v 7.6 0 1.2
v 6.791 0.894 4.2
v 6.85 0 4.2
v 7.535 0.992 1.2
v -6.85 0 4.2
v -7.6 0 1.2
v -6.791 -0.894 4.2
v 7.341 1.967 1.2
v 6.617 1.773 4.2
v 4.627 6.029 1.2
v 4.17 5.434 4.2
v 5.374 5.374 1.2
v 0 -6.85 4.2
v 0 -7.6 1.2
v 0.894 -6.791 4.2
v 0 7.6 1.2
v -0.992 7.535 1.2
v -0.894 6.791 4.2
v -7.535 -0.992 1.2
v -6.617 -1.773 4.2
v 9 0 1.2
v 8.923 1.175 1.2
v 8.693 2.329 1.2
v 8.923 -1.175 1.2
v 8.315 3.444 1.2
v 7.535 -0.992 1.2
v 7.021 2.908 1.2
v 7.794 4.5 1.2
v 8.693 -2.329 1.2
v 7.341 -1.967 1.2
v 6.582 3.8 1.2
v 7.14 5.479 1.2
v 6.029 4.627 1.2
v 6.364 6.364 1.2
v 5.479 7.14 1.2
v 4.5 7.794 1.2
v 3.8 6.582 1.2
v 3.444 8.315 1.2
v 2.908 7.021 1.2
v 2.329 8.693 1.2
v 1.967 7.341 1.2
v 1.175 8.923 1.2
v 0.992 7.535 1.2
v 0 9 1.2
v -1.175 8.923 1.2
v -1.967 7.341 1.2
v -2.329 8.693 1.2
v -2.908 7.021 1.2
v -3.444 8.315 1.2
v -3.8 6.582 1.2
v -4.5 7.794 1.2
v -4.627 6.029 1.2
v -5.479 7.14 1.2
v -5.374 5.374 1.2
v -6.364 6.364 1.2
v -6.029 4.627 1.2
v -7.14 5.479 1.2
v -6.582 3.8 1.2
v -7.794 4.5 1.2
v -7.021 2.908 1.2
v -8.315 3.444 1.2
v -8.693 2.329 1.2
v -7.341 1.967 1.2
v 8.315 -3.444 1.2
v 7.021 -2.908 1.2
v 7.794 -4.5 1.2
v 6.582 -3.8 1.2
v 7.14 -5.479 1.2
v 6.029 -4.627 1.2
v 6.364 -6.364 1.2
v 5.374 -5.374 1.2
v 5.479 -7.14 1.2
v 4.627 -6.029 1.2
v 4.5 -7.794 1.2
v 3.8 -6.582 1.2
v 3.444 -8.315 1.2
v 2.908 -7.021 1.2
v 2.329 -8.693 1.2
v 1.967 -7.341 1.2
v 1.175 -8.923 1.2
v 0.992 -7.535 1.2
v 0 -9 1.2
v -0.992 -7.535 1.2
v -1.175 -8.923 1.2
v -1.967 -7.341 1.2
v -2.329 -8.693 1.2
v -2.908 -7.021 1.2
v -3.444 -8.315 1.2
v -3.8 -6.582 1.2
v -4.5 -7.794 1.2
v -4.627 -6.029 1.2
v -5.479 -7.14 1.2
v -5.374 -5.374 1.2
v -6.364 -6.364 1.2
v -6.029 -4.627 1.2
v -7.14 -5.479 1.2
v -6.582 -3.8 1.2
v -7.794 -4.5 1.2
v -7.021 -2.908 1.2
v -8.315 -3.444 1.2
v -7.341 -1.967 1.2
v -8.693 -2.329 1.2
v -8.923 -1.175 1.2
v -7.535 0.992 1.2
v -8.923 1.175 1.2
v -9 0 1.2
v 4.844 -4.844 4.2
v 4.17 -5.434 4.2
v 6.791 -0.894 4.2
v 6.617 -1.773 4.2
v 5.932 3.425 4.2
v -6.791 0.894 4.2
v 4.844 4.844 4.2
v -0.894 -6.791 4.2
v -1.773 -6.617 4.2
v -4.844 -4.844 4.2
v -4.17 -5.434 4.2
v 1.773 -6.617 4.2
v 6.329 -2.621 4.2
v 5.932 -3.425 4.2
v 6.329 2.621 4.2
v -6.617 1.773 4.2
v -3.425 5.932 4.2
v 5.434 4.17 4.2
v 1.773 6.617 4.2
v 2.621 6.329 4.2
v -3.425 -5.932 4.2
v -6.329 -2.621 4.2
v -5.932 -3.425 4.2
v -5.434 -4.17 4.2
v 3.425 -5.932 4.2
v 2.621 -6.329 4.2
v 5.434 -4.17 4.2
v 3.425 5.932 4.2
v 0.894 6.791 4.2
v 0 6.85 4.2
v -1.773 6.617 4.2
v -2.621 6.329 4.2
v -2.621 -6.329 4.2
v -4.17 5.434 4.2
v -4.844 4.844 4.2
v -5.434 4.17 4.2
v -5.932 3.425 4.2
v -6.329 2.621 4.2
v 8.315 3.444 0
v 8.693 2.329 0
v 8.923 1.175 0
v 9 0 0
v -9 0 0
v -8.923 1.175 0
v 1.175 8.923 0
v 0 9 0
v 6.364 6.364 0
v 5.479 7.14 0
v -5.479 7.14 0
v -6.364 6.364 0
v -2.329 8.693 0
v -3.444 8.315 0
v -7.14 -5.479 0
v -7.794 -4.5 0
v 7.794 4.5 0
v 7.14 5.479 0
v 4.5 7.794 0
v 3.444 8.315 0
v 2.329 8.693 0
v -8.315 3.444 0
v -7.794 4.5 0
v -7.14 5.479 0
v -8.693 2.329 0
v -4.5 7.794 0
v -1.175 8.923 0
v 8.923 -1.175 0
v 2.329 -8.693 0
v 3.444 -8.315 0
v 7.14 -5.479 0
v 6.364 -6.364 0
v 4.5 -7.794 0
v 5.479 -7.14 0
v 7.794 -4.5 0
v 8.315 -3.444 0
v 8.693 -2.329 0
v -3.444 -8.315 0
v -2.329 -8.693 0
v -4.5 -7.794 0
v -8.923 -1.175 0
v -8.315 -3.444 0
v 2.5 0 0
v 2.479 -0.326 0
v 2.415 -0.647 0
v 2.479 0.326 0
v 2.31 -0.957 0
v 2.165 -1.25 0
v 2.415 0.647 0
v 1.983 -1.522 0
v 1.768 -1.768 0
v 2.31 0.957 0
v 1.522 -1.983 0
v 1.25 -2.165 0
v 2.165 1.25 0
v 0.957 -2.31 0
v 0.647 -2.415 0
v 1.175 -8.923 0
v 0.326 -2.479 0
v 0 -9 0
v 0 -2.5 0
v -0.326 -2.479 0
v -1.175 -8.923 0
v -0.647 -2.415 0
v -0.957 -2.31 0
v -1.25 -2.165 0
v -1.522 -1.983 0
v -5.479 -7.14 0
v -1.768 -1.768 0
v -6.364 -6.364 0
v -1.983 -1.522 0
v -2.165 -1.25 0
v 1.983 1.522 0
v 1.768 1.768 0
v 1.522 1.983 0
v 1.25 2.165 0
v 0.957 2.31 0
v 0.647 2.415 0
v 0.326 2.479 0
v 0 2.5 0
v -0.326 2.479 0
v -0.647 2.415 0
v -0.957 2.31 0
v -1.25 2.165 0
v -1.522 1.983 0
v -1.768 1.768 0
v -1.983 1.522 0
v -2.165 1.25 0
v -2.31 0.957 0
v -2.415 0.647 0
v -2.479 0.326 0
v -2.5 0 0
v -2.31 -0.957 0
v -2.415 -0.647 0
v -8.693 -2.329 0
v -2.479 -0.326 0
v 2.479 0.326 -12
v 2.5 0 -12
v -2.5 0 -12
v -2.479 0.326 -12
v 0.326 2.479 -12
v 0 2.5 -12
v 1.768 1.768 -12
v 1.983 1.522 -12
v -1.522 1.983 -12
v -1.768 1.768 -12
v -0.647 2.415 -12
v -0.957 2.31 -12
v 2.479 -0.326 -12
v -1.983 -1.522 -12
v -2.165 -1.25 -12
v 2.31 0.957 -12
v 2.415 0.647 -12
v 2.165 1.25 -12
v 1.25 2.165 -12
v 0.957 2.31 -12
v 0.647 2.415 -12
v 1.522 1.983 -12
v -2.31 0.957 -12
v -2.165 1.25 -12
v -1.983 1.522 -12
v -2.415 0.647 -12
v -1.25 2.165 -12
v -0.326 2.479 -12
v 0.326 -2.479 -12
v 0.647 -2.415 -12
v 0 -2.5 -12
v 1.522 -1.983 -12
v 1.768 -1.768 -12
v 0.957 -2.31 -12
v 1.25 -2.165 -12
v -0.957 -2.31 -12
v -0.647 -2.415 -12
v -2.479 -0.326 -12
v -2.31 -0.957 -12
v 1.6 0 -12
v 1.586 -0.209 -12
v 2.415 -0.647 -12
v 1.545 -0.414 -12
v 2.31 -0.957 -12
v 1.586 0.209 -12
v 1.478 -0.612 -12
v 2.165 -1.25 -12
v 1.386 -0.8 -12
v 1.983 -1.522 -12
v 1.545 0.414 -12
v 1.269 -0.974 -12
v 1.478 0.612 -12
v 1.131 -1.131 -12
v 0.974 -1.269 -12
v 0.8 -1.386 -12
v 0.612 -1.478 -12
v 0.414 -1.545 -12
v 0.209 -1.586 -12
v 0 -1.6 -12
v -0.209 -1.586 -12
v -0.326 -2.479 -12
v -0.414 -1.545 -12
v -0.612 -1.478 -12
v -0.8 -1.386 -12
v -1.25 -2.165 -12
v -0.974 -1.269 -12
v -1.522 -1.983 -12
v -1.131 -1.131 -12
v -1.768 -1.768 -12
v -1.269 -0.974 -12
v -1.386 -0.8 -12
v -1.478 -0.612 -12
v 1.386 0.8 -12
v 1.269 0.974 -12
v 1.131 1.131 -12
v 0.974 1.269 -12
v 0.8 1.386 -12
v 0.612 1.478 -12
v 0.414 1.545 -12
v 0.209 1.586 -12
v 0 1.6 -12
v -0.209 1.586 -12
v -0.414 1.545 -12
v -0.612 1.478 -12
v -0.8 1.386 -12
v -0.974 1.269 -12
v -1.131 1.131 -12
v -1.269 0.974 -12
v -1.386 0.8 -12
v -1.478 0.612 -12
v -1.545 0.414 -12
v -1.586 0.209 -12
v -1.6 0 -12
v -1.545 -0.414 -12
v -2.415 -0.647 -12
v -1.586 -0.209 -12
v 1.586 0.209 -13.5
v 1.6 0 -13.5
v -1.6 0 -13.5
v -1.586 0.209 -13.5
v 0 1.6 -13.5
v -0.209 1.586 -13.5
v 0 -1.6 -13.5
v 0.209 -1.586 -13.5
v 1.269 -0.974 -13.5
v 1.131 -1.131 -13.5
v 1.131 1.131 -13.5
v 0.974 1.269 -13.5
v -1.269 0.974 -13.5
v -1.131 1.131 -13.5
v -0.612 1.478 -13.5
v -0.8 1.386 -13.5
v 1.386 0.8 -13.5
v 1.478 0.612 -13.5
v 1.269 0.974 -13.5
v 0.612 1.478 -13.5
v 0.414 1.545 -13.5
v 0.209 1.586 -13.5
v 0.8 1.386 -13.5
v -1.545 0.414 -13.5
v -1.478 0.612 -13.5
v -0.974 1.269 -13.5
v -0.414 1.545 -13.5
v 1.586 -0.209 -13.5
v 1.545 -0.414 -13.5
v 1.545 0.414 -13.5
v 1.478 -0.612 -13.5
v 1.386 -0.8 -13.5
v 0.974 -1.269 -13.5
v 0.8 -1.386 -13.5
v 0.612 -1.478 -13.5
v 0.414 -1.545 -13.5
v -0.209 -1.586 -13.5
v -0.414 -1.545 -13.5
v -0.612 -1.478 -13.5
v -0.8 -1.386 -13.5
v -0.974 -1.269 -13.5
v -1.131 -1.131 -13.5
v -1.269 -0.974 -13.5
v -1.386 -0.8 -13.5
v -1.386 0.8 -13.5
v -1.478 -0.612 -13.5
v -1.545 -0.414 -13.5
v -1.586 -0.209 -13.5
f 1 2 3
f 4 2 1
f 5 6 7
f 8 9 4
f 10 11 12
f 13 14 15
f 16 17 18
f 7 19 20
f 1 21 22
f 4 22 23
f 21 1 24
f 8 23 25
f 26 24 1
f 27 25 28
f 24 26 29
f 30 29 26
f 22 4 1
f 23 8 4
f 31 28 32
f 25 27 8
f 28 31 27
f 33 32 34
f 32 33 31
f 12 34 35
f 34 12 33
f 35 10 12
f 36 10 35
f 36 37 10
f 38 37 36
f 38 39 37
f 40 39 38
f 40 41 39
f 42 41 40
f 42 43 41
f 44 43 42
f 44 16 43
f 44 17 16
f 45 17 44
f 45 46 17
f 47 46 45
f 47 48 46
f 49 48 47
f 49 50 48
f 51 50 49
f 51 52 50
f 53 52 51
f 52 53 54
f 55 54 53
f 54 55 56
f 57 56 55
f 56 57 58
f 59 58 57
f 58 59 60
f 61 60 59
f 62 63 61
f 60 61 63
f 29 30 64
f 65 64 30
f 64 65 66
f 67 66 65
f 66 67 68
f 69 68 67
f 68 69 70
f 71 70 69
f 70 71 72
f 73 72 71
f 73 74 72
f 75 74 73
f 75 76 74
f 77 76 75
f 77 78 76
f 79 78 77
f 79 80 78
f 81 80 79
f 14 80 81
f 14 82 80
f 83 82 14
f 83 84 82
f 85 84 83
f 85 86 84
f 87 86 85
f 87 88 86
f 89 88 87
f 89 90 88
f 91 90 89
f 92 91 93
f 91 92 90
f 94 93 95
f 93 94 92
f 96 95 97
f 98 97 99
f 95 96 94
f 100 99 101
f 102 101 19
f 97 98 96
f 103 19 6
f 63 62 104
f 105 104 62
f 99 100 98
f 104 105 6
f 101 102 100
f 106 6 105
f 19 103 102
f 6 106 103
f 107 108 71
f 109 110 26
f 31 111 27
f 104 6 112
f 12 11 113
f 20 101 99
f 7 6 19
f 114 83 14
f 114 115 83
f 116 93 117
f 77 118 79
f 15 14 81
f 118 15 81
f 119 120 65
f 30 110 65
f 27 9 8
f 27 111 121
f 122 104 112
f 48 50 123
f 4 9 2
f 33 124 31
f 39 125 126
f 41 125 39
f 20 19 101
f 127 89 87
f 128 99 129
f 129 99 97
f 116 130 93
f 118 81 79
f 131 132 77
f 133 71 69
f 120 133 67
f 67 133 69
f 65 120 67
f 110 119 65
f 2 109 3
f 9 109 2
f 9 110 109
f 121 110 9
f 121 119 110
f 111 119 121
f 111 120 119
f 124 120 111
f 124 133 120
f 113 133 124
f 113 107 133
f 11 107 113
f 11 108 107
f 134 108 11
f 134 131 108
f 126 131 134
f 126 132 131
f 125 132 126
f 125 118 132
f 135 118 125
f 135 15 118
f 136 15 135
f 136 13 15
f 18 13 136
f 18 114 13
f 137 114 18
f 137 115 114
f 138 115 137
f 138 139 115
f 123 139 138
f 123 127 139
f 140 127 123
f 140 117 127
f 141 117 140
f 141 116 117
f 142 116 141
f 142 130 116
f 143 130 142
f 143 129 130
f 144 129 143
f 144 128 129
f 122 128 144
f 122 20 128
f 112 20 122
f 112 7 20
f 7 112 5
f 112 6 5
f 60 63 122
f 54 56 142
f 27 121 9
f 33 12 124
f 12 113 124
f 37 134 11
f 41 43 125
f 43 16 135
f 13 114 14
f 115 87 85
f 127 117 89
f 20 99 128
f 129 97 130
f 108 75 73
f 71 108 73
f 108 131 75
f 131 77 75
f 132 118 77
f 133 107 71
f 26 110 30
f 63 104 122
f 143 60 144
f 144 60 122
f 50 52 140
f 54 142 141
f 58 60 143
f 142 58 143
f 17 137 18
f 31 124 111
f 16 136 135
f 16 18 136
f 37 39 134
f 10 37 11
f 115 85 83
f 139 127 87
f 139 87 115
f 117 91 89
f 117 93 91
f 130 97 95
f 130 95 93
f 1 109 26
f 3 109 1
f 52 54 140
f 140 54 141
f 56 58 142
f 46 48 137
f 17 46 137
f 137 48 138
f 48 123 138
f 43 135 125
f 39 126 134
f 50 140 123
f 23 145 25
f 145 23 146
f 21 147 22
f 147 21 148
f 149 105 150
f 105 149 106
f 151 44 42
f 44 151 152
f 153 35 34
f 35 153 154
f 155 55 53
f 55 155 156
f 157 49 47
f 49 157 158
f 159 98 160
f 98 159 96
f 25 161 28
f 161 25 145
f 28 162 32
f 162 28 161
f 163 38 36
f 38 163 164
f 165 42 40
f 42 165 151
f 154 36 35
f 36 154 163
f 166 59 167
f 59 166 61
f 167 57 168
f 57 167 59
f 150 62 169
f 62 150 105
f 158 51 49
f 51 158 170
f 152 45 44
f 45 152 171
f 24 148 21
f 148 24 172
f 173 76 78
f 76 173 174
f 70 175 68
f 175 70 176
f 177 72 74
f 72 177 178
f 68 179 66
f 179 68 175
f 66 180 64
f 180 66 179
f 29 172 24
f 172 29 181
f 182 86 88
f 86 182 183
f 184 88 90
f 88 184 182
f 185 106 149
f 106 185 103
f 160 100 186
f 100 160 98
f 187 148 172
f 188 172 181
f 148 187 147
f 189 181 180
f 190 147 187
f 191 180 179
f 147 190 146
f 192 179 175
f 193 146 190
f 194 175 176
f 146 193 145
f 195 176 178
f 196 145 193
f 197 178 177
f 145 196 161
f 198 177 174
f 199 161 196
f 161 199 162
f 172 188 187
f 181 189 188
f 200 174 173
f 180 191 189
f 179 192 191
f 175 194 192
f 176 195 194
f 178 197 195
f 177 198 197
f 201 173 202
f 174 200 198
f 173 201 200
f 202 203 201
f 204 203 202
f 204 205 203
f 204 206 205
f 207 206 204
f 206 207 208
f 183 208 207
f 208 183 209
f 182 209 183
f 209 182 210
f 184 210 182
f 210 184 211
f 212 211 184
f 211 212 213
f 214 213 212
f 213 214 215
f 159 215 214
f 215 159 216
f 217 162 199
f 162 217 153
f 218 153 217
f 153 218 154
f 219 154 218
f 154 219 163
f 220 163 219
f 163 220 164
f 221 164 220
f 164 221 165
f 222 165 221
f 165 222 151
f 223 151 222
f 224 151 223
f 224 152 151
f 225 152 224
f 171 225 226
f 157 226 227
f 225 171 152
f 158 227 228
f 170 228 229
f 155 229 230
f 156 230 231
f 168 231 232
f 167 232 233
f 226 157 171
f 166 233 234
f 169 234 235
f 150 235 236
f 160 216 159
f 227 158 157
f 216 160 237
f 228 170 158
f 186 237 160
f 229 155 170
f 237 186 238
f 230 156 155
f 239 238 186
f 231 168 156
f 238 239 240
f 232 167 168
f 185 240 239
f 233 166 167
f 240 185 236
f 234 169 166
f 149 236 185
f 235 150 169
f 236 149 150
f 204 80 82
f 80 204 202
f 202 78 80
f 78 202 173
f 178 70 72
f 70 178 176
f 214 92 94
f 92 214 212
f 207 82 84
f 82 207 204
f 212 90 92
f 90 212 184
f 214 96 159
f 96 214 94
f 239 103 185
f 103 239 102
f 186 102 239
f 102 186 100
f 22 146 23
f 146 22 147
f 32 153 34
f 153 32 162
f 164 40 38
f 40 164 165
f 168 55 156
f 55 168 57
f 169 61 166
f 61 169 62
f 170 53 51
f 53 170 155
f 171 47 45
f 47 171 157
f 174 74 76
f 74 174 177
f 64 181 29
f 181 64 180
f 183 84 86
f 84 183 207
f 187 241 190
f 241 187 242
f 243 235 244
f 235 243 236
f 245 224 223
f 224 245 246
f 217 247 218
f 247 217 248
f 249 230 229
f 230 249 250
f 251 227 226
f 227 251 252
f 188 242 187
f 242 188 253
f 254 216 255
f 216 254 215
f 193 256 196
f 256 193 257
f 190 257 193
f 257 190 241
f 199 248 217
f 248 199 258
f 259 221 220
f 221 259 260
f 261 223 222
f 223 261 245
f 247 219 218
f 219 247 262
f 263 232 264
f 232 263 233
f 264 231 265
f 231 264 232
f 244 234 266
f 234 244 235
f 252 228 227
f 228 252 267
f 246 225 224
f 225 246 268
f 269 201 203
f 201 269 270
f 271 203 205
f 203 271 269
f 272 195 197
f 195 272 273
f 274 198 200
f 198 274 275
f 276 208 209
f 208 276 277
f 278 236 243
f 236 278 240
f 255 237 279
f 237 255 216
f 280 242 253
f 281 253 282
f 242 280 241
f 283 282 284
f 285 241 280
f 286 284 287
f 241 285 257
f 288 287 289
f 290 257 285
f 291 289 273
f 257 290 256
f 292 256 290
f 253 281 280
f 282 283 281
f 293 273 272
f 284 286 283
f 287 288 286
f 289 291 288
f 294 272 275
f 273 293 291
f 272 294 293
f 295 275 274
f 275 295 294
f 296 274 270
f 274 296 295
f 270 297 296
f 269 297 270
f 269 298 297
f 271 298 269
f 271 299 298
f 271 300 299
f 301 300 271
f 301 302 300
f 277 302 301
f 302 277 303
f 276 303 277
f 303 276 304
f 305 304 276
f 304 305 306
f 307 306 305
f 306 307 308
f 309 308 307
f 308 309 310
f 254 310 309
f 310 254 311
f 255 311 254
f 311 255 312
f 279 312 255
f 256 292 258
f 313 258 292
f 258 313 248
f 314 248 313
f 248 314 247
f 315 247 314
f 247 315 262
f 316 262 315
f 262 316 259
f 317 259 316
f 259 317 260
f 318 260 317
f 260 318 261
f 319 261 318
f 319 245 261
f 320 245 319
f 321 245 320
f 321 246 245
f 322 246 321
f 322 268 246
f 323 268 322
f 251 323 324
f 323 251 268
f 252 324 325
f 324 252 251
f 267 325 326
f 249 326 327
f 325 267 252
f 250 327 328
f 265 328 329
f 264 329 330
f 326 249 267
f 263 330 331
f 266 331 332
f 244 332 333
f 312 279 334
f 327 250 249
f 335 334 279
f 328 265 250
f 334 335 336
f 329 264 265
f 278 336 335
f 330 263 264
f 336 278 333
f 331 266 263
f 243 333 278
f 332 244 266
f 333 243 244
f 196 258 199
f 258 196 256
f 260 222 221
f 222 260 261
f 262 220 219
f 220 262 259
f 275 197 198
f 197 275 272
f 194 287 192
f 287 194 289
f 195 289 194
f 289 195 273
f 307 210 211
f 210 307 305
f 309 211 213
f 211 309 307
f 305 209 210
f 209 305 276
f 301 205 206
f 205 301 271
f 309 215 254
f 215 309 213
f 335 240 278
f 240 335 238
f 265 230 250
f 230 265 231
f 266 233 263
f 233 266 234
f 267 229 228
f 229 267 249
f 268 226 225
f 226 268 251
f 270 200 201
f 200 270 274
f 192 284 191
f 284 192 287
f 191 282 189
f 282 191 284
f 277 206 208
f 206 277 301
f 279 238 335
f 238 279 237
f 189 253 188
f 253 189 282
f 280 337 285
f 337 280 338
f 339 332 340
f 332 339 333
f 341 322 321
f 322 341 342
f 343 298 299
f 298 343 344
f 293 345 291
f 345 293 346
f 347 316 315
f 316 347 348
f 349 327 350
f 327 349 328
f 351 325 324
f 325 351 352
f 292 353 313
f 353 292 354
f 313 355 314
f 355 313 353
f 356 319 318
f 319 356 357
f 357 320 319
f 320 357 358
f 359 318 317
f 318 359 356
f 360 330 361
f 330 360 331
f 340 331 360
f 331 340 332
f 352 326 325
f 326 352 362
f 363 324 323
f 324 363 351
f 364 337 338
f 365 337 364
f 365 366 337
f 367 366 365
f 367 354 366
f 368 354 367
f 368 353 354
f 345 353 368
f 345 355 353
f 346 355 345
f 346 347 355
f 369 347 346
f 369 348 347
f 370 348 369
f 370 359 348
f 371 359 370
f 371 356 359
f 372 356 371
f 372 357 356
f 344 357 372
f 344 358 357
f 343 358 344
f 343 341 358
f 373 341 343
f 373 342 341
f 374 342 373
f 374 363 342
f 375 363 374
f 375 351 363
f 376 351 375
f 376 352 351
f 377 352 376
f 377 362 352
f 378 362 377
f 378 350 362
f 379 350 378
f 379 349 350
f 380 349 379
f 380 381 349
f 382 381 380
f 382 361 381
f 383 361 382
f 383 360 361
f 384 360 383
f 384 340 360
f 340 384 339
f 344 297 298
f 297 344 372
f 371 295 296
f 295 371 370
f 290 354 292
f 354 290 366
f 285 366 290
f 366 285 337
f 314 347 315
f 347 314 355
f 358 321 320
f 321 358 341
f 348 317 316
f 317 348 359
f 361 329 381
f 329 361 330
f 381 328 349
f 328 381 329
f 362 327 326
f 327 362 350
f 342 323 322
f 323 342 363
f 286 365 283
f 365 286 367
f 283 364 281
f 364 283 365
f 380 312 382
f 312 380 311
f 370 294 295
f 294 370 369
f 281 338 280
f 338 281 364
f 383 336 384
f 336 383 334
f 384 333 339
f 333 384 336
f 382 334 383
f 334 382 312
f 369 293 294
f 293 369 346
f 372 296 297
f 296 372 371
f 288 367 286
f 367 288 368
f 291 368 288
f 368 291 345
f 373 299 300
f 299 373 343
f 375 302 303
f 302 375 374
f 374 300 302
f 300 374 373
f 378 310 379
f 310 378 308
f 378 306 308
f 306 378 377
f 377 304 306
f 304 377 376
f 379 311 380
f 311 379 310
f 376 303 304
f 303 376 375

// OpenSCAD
// DoorCam 16mm Tactile Button Plunger Cap
// Fits the 16mm front shell aperture and presses an internal 6x6mm tactile switch
$fn = 48;

cap_d     = 15.2;   // Outer button cap diameter (smooth slip fit in 16mm hole)
cap_h     = 3.0;    // Visible button face thickness
flange_d  = 18.0;   // Retaining flange (prevents button from falling out of front)
flange_h  = 1.2;    // Flange thickness
stem_d    = 5.0;    // Stem diameter pressing against the 6x6 tactile button
stem_len  = 12.0;   // Length extending to reach the PCB switch
nub_d     = 3.2;    // Actuator tip
nub_h     = 1.5;

union() {
    // 1. Chamfered tactile face (pokes through front hole)
    translate([0, 0, flange_h])
        cylinder(d1=cap_d, d2=cap_d - 1.5, h=cap_h);

    // 2. Retaining flange (rests inside the case against front wall)
    cylinder(d=flange_d, h=flange_h);

    // 3. Central plunger stem extending down to the 6x6mm switch
    translate([0, 0, -stem_len])
        cylinder(d=stem_d, h=stem_len);

    // 4. Contact nub that centers onto the tactile button
    translate([0, 0, -stem_len - nub_h])
        cylinder(d=nub_d, h=nub_h);
}
